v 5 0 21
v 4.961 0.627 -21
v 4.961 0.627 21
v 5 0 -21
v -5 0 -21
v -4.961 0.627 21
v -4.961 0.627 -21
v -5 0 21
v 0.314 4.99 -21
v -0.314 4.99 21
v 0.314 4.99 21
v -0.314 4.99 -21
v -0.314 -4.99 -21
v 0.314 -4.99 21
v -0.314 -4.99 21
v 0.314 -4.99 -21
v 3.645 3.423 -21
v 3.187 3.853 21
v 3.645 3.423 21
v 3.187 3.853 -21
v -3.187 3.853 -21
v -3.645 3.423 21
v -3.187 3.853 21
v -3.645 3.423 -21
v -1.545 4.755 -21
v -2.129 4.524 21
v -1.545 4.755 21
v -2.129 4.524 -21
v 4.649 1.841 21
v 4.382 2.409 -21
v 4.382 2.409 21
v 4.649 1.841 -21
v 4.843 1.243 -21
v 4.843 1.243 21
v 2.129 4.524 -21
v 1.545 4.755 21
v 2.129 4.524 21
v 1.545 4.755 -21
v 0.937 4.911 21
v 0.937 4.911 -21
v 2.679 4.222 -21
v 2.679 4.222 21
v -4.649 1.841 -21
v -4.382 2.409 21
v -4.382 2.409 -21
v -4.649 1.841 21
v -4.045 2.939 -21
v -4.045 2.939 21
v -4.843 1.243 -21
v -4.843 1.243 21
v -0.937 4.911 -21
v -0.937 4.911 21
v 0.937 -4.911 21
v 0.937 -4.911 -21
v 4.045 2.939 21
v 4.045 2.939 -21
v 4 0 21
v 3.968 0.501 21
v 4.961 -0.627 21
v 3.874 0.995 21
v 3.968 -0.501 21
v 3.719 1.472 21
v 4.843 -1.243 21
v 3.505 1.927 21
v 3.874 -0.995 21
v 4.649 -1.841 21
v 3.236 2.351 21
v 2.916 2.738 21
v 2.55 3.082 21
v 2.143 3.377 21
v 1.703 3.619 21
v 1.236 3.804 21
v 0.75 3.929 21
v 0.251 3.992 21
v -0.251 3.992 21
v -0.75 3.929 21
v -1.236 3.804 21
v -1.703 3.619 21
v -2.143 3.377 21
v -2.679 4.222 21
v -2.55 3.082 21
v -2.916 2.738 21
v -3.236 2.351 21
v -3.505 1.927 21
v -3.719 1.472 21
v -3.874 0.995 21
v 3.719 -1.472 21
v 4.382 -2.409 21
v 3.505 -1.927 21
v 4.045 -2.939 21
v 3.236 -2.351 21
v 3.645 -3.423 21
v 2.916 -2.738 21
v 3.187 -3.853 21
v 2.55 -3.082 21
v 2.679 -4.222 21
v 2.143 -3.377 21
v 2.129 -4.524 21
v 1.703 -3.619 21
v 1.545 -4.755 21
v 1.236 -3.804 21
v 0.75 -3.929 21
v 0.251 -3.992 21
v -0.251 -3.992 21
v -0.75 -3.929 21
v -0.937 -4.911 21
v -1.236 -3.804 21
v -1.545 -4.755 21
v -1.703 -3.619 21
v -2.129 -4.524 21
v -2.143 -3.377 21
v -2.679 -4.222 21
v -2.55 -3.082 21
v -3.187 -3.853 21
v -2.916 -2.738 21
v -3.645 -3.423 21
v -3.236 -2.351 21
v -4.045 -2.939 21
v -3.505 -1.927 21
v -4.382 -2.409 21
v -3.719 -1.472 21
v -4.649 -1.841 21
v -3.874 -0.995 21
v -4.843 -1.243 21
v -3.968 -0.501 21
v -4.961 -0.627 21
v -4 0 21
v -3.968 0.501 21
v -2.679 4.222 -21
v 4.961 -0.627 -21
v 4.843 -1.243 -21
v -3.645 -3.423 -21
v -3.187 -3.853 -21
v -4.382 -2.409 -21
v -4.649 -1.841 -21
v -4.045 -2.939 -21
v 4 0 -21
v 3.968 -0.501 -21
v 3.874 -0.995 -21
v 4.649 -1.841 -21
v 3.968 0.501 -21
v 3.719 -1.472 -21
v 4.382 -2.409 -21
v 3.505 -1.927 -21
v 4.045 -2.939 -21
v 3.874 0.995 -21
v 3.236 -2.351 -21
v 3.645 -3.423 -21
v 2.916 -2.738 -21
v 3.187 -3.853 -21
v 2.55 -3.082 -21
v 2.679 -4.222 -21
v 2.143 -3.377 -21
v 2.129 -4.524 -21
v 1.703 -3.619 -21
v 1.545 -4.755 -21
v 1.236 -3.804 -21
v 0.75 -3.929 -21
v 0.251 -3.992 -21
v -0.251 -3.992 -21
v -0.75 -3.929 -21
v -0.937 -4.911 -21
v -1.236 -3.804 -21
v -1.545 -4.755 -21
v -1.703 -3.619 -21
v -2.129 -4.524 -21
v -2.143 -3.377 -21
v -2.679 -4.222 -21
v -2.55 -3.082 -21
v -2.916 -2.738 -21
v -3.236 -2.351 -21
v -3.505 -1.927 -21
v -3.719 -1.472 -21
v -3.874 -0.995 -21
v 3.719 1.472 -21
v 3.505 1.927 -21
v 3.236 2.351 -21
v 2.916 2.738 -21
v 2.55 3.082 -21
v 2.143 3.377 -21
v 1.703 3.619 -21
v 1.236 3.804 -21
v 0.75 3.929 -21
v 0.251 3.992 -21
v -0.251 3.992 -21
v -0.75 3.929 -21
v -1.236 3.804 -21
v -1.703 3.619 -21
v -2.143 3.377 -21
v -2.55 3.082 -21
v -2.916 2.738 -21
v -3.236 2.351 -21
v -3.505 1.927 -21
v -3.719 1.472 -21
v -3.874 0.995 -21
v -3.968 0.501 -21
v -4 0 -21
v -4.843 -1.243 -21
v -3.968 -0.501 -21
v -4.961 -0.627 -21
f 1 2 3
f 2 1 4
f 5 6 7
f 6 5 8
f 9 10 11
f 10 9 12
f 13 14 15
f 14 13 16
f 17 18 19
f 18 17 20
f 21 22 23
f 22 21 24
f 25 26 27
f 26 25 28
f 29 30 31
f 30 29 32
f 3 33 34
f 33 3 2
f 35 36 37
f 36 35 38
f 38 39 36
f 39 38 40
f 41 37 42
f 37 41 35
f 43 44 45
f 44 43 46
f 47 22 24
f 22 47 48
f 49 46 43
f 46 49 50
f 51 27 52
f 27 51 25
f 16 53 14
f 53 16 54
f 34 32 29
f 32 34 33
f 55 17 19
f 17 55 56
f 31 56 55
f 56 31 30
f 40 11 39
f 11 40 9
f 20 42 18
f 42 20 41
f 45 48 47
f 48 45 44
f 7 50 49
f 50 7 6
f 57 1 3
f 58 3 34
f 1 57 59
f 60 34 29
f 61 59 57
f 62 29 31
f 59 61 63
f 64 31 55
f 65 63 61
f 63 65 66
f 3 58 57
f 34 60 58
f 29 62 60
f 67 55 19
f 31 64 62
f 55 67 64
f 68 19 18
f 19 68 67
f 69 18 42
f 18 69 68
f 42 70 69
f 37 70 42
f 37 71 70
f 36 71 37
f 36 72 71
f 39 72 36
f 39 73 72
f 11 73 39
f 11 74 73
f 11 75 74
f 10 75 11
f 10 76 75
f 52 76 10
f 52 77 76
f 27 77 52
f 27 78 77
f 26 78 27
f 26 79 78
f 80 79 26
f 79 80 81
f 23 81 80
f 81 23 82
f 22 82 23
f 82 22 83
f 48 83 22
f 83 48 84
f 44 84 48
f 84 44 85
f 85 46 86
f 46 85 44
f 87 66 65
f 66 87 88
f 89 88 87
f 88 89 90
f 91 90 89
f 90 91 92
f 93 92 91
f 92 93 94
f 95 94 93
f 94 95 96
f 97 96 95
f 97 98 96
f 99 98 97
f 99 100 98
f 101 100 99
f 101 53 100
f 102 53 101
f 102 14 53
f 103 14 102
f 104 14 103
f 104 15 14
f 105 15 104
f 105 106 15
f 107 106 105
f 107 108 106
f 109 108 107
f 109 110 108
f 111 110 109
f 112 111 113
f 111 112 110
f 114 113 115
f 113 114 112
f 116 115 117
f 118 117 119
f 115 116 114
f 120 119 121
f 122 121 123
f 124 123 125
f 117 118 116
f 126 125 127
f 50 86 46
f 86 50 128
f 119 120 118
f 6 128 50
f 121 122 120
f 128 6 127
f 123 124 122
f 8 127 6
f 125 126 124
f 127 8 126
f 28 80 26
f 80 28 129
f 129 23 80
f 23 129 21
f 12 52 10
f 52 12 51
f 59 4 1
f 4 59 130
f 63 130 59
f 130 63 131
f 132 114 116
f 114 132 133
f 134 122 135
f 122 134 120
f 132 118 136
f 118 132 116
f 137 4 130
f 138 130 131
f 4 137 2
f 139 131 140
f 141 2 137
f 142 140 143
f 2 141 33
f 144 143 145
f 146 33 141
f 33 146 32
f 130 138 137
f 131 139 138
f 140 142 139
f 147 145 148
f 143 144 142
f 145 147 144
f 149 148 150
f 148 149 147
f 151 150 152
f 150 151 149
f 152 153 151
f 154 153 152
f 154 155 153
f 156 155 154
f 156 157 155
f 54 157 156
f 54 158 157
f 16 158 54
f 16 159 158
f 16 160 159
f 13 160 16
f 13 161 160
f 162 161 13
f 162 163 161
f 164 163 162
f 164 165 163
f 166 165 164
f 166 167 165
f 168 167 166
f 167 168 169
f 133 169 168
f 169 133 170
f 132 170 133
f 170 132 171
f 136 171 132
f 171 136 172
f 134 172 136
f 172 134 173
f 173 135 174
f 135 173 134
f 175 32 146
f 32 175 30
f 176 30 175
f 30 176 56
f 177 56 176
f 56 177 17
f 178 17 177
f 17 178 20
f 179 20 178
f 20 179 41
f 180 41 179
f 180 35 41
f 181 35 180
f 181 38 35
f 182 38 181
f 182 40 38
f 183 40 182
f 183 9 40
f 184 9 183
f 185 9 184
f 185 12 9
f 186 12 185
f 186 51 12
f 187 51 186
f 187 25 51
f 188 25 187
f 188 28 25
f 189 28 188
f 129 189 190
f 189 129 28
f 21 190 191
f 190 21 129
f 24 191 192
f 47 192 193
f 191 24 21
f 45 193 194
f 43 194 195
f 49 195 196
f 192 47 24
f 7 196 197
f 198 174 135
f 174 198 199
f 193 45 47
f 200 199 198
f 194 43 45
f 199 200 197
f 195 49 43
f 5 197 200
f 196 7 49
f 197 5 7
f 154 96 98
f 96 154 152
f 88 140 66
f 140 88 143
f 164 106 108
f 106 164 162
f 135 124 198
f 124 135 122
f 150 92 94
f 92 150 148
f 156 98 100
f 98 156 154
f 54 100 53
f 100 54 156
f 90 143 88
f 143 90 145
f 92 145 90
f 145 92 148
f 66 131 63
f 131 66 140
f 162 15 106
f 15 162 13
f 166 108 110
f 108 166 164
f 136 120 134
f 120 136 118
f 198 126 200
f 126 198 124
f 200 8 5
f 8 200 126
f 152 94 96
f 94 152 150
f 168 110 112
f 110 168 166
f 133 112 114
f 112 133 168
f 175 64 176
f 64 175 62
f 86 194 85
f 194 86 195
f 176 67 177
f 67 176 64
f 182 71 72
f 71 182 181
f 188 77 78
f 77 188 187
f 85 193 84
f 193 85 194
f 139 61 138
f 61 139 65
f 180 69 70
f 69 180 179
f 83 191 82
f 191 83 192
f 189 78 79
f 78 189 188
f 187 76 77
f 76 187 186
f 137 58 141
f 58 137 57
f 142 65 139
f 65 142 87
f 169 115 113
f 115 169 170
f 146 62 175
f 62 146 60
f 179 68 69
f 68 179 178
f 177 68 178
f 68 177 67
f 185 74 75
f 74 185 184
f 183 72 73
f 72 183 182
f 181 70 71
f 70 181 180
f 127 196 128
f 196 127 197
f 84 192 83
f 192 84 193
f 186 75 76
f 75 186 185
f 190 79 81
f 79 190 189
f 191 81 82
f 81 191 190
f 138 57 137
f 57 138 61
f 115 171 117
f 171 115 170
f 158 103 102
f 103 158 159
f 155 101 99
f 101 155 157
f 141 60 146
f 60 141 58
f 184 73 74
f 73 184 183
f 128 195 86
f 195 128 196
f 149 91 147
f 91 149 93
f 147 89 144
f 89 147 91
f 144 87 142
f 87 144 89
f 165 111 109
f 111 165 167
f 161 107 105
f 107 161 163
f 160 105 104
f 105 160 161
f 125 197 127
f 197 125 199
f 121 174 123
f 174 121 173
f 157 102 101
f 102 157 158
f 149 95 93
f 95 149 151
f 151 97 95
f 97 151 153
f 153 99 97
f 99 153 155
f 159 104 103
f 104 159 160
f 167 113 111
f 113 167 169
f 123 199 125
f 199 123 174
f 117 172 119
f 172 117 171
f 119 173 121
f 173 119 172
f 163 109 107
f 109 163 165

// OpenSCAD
$fn = 50;


difference() {
	union() {
		translate(v = [0, 0, -21.0000000000]) {
			cylinder(h = 42, r = 5.0000000000);
		}
	}
	union() {
		translate(v = [0, 0, -100.0000000000]) {
			cylinder(h = 200, r = 4);
		}
	}
}
